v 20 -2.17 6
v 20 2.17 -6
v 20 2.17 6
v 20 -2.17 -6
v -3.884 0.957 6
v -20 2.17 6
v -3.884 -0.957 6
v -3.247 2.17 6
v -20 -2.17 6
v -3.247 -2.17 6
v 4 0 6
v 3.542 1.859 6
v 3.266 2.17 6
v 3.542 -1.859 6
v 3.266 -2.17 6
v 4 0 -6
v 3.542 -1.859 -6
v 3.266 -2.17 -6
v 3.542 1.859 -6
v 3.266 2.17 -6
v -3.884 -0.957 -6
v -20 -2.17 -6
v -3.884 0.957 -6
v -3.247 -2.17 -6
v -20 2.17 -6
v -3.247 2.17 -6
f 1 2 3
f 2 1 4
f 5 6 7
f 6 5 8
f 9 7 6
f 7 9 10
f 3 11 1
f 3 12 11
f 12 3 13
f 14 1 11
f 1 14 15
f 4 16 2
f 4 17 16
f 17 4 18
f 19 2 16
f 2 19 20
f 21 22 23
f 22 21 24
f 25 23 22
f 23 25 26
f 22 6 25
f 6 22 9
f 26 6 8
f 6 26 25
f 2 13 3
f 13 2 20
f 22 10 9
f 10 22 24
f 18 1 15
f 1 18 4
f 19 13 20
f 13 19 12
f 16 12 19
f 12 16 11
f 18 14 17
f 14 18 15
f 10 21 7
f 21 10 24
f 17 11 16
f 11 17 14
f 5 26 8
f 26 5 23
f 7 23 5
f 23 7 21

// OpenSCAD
/* doodle-meta {"version":1,"parameters":{"width":{"label":"Overall width","description":"Changes the body width","unit":"mm","feature":"body_width"},"depth":{"label":"Overall depth","description":"Changes the body depth","unit":"mm","feature":"body_depth"},"height":{"label":"Overall height","description":"Changes the body height","unit":"mm","feature":"body_height"},"hole_diameter":{"label":"Hole diameter","description":"Changes the diameter of the central through hole","unit":"mm","feature":"central_hole"}},"features":{"body_width":{"kind":"dimension","axis":"x","label":"Overall width"},"body_depth":{"kind":"dimension","axis":"y","label":"Overall depth"},"body_height":{"kind":"dimension","axis":"z","label":"Overall height"},"central_hole":{"kind":"region","label":"Central through hole","min":[{"parameter":"width","scale":0.5,"offset":-4.0},{"parameter":"depth","scale":0.5,"offset":-4.0},0],"max":[{"parameter":"width","scale":0.5,"offset":4.0},{"parameter":"depth","scale":0.5,"offset":4.0},{"parameter":"height","scale":1.0,"offset":0}]}}} */

width = 40.0;
depth = 4.34;
height = 12.0;
hole_diameter = 8.0;

eps = 0.01;

module block_body() {
    cube([width, depth, height], center=true);
}

module central_hole_cutter() {
    cylinder(d=hole_diameter, h=height + 2*eps, center=true);
}

difference() {
    block_body();
    central_hole_cutter();
}
